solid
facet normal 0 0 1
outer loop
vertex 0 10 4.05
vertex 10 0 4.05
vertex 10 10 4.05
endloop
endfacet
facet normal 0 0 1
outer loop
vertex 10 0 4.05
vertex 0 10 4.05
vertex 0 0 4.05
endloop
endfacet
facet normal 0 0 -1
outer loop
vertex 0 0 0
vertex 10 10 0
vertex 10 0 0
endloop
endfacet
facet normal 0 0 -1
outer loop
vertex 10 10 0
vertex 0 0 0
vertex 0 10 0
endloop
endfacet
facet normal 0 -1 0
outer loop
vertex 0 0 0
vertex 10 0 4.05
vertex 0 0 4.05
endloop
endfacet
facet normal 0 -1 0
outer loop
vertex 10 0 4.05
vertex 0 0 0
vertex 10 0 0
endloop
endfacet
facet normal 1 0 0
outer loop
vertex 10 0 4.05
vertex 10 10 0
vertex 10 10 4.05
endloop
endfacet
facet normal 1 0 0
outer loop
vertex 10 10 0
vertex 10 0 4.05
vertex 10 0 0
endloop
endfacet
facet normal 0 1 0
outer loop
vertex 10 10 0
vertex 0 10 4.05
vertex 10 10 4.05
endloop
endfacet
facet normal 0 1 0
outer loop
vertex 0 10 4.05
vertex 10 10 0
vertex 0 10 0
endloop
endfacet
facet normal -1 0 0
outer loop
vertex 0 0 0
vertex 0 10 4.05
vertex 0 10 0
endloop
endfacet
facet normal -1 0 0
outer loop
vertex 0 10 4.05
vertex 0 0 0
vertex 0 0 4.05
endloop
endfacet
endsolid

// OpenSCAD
/* Warning, this is a very basic generator with a lot of approximation 
input data : [B2QFN, M6A, 10x10x4.05mm, 52, , A, C04-01057A]
generated by com.zoubworld.electronics.cad.model3d.Basic
Date : Sun Feb 15 10:50:49 CET 2026
*/

//body
color("black")
translate([0,0,0])
cube([10.0,10.0,4.05], center=false);
